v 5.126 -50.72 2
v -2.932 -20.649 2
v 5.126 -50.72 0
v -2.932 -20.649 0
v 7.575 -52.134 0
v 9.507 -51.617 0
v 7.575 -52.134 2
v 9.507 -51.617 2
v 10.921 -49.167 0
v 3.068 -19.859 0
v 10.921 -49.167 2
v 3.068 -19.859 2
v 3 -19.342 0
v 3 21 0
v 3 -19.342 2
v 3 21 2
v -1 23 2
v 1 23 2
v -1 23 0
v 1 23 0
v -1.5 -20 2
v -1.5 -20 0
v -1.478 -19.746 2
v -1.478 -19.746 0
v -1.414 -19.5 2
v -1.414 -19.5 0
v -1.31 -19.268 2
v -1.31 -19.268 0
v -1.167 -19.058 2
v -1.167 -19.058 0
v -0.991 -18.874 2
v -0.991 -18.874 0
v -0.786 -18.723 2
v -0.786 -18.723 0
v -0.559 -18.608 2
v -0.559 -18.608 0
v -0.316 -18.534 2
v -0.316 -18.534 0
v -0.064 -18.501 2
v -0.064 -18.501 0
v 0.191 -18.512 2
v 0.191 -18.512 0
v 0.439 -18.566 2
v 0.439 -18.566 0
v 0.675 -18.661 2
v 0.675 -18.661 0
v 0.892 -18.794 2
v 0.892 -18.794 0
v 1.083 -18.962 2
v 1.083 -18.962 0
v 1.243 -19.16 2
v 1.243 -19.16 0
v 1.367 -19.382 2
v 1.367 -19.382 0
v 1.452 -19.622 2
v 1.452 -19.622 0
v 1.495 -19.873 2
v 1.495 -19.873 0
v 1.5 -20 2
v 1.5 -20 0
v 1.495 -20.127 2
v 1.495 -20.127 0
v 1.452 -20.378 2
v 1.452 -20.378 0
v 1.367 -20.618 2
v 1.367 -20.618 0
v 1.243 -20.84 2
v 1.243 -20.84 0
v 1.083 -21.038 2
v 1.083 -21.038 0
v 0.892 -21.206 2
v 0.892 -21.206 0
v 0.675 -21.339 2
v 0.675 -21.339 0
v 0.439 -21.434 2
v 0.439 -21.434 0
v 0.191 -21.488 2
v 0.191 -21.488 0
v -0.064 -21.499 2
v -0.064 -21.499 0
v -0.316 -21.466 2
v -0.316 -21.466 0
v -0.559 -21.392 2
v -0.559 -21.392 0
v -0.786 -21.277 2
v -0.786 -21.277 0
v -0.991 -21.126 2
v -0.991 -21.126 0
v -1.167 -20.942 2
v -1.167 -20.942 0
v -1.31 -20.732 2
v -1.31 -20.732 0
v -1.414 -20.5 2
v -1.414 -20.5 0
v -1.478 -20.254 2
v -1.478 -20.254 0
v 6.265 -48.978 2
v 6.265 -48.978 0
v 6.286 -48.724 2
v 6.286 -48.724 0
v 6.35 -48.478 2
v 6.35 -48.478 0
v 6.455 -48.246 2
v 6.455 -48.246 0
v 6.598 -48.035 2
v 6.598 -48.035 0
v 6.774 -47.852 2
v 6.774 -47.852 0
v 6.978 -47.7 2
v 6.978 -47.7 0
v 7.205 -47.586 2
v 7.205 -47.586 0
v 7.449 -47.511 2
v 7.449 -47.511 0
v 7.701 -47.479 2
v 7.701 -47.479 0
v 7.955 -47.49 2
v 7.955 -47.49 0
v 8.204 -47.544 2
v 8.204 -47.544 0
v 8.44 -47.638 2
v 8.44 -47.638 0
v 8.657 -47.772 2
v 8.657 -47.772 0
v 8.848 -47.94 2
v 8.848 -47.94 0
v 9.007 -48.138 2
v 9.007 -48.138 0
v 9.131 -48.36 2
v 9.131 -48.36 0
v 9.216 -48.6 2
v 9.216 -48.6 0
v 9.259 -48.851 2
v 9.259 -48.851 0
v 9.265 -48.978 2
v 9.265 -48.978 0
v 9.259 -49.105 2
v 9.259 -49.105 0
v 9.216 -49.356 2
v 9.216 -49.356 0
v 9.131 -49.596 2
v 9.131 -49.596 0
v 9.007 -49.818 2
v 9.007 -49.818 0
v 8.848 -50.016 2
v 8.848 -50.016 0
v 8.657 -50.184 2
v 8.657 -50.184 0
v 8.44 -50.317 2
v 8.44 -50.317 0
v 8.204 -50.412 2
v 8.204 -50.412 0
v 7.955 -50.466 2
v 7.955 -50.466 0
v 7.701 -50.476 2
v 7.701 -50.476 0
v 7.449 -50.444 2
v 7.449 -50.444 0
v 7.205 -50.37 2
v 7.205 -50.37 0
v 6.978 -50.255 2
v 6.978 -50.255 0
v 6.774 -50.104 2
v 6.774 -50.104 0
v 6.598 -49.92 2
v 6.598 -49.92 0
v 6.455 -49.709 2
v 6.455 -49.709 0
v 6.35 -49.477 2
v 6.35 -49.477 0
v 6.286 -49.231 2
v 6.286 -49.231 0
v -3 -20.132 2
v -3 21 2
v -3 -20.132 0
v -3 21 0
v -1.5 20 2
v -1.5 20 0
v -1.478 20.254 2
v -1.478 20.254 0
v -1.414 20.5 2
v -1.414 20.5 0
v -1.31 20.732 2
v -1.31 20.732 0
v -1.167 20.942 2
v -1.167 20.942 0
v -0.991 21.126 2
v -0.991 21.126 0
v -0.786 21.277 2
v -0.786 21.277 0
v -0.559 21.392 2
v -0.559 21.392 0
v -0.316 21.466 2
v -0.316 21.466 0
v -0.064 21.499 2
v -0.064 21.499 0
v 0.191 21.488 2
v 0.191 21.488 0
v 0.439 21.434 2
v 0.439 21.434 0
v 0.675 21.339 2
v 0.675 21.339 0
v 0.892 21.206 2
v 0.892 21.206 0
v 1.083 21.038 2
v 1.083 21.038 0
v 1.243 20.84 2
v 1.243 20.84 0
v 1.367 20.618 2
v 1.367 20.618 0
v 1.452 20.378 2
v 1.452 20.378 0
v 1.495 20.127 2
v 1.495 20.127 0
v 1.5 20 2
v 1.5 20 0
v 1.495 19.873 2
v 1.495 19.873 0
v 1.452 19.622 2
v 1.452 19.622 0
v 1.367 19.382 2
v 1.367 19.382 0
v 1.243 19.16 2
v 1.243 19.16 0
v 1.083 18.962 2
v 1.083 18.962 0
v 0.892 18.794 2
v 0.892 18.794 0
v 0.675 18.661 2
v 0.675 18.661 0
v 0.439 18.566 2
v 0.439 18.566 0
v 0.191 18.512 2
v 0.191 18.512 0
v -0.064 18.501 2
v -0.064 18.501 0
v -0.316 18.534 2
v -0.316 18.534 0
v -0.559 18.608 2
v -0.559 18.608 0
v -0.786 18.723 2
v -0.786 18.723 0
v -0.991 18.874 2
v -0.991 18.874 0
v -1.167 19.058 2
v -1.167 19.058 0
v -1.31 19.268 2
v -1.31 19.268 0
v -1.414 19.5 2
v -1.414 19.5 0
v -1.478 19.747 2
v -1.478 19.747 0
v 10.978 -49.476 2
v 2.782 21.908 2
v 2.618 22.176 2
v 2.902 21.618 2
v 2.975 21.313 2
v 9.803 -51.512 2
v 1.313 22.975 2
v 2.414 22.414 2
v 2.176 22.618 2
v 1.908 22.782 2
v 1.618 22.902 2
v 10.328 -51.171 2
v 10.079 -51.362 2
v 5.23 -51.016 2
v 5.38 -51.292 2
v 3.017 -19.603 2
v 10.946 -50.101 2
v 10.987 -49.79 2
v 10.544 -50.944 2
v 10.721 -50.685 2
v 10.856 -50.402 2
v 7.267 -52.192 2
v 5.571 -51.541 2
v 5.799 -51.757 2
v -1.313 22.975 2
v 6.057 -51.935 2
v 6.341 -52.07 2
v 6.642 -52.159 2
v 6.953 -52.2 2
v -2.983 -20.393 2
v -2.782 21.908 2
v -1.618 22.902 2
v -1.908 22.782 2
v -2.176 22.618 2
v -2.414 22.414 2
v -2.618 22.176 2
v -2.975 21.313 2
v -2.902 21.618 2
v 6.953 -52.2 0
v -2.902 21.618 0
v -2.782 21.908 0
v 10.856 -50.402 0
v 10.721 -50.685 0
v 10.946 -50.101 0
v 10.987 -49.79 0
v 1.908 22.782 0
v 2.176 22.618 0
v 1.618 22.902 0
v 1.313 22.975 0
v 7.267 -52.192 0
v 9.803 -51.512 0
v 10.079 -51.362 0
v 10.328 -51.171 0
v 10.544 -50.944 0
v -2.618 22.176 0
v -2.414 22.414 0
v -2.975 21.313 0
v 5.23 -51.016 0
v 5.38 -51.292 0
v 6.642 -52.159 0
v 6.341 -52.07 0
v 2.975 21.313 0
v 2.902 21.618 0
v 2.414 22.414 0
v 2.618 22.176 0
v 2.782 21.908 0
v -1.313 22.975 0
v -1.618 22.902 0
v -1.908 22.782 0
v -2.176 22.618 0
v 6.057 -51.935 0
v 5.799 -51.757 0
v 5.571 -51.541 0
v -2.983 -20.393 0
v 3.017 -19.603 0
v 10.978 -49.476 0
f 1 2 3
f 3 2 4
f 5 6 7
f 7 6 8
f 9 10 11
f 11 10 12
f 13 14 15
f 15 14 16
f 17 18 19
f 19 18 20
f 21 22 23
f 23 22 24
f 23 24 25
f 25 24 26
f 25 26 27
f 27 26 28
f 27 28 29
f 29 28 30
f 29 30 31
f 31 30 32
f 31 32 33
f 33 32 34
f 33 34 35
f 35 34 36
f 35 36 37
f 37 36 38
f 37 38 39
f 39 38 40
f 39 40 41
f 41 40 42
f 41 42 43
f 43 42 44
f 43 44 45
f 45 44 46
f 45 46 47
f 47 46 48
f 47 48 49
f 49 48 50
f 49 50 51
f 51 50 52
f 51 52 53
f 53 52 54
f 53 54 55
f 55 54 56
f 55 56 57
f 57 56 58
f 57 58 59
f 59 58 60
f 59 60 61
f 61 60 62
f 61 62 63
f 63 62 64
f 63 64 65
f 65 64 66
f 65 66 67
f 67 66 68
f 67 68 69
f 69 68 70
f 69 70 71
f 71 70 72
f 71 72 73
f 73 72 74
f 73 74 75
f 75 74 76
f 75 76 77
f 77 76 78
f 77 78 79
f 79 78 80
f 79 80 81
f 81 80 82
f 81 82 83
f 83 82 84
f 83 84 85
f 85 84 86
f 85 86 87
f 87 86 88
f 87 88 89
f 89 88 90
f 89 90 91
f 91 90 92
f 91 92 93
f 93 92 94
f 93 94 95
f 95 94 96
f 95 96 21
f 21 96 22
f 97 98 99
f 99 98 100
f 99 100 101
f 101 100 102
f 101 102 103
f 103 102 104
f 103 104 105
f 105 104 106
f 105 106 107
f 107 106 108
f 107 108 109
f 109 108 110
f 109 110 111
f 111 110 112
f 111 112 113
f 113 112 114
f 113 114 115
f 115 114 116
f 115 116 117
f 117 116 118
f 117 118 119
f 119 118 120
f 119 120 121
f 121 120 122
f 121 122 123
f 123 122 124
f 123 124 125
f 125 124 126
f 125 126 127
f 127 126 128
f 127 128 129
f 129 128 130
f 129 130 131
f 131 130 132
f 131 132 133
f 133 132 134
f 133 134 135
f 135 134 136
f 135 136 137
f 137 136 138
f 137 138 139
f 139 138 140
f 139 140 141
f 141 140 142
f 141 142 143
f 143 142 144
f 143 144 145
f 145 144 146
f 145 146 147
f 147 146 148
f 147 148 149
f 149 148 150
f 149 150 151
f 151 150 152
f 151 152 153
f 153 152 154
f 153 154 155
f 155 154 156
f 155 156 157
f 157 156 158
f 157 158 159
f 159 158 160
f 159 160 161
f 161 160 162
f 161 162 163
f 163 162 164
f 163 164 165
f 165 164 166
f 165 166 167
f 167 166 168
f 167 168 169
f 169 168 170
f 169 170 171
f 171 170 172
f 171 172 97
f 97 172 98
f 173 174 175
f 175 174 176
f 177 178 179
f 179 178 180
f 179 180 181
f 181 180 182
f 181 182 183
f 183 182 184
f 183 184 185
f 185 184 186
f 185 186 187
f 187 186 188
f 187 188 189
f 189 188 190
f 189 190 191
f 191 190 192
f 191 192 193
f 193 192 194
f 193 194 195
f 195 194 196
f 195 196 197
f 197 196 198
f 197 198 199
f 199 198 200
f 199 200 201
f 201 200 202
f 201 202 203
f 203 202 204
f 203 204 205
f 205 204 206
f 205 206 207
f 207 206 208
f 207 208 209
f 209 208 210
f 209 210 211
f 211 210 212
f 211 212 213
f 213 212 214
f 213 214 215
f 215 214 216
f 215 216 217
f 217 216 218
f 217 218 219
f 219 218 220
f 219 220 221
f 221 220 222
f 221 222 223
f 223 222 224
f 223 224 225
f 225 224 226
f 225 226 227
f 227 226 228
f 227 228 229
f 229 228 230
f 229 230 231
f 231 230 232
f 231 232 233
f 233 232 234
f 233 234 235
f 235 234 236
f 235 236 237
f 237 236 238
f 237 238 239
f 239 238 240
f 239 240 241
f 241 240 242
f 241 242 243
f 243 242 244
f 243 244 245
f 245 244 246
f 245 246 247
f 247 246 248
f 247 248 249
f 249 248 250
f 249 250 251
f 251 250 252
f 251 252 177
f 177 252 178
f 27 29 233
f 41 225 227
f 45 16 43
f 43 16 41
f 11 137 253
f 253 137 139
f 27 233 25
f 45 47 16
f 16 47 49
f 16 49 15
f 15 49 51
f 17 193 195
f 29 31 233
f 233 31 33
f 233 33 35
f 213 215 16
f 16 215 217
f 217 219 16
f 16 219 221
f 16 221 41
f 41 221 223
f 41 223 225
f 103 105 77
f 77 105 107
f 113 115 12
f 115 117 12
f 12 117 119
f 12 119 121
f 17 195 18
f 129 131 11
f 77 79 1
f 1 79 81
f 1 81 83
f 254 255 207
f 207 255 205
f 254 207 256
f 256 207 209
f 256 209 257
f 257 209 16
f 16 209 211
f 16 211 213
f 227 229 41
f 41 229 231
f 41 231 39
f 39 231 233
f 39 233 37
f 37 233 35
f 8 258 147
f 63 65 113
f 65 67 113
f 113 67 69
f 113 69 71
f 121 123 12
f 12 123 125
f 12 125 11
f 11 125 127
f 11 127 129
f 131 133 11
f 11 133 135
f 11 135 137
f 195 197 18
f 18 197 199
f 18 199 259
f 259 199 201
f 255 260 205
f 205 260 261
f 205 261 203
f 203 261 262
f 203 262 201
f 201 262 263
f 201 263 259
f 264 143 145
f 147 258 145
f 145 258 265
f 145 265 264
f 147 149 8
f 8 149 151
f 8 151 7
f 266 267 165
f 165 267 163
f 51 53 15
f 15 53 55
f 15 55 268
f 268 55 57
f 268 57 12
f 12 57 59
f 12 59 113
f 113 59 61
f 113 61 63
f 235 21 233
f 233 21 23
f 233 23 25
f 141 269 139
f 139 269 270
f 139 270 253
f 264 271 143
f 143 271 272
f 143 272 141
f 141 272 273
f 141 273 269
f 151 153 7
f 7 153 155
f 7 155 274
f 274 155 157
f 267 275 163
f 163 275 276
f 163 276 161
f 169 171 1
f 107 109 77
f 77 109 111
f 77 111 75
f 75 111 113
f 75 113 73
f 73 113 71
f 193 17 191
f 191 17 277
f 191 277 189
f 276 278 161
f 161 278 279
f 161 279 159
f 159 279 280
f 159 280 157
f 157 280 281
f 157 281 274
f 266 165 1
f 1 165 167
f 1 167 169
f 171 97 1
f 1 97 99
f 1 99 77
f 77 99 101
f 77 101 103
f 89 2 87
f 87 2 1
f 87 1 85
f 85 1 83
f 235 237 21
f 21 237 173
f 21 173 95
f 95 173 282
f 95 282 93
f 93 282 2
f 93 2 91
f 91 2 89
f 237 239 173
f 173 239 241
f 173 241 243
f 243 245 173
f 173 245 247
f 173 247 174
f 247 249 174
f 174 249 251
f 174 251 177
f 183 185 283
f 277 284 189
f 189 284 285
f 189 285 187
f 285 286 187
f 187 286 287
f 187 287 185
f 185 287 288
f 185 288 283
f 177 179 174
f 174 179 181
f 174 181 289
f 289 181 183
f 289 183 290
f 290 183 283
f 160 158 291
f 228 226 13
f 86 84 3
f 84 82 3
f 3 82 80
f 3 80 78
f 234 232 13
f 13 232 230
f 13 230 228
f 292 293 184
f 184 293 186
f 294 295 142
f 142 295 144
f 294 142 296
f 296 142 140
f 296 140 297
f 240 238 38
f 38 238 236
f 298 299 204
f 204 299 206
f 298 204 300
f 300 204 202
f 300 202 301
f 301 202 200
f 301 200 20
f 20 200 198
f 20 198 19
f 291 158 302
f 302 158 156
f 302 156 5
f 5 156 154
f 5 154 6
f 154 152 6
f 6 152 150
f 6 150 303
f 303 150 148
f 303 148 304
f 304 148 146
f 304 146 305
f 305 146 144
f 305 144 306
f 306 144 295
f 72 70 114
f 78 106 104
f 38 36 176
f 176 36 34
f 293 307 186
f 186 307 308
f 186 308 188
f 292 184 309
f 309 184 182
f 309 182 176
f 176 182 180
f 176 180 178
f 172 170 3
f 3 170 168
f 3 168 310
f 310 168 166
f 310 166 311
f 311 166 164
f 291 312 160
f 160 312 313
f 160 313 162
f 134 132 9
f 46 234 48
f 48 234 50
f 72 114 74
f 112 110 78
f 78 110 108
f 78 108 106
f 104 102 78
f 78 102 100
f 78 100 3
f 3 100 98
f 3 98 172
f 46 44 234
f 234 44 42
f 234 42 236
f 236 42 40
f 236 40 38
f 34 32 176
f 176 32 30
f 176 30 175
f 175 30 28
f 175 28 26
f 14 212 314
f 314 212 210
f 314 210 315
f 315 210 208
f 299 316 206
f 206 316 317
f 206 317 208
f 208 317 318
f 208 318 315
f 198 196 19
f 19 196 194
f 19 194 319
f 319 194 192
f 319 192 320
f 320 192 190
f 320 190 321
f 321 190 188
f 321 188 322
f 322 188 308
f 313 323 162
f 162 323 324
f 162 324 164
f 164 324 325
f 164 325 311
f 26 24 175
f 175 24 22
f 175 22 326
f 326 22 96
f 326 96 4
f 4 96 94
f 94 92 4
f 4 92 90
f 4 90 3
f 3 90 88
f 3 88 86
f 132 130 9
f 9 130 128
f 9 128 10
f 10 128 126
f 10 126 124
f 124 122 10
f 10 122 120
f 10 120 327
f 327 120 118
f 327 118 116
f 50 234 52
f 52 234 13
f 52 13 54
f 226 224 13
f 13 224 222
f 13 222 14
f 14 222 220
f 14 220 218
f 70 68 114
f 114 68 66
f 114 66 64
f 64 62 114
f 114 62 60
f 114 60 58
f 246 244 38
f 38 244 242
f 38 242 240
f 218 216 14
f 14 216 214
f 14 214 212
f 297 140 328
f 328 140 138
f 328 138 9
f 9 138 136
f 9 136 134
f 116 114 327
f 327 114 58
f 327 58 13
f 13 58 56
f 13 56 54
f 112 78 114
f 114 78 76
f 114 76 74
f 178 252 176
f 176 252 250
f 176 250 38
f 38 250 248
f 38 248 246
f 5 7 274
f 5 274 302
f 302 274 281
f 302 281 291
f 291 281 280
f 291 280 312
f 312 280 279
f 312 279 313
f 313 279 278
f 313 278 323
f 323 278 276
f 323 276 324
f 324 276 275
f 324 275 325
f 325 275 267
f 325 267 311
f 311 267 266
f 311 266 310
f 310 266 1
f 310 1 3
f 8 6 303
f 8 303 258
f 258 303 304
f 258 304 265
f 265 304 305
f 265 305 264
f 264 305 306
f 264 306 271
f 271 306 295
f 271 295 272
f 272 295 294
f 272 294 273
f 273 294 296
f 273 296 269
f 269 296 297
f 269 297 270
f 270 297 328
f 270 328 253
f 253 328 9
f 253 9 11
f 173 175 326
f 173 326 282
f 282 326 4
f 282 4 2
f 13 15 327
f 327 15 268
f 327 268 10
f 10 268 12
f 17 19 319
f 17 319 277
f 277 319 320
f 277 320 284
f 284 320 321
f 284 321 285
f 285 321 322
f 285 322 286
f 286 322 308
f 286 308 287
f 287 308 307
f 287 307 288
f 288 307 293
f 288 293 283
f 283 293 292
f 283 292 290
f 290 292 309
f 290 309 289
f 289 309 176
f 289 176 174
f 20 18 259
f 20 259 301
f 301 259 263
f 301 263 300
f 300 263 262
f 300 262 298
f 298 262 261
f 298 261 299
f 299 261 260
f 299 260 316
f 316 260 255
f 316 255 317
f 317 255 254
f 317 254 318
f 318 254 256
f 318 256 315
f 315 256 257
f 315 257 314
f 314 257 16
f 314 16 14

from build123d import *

# Parameters (mm, degrees)
ESQUISSE2_R        = 1.5
BOSS_EXTRU_3_DEPTH = 2
CONG_3_R           = 2


with BuildPart() as part:
    # Esquisse2 → Boss.-Extru.3 (new body)
    with BuildSketch(Plane.XY):
        Polygon((-3, 23), (-3, -20.394957493), (5.64325101, -52.652009403), (11.438805967, -51.099095132), (3, -19.605042507), (3, 23), align=None)
        with Locations((7.764571353, -48.977774789)):
            Circle(ESQUISSE2_R, mode=Mode.SUBTRACT)
        with Locations((0, -20)):
            Circle(ESQUISSE2_R, mode=Mode.SUBTRACT)
        with Locations((0, 20)):
            Circle(ESQUISSE2_R, mode=Mode.SUBTRACT)
    extrude(amount=BOSS_EXTRU_3_DEPTH)

    # Congé3
    cong_3_edges = [part.edges().sort_by_distance(p)[0] for p in [
        (-3, -20.394957493, 1),
        (-3, 23, 1),
        (3, 23, 1),
        (3, -19.605042507, 1),
        (11.438805967, -51.099095132, 1),
        (5.64325101, -52.652009403, 1),
    ]]
    fillet(cong_3_edges, radius=CONG_3_R)


solid = part.part
